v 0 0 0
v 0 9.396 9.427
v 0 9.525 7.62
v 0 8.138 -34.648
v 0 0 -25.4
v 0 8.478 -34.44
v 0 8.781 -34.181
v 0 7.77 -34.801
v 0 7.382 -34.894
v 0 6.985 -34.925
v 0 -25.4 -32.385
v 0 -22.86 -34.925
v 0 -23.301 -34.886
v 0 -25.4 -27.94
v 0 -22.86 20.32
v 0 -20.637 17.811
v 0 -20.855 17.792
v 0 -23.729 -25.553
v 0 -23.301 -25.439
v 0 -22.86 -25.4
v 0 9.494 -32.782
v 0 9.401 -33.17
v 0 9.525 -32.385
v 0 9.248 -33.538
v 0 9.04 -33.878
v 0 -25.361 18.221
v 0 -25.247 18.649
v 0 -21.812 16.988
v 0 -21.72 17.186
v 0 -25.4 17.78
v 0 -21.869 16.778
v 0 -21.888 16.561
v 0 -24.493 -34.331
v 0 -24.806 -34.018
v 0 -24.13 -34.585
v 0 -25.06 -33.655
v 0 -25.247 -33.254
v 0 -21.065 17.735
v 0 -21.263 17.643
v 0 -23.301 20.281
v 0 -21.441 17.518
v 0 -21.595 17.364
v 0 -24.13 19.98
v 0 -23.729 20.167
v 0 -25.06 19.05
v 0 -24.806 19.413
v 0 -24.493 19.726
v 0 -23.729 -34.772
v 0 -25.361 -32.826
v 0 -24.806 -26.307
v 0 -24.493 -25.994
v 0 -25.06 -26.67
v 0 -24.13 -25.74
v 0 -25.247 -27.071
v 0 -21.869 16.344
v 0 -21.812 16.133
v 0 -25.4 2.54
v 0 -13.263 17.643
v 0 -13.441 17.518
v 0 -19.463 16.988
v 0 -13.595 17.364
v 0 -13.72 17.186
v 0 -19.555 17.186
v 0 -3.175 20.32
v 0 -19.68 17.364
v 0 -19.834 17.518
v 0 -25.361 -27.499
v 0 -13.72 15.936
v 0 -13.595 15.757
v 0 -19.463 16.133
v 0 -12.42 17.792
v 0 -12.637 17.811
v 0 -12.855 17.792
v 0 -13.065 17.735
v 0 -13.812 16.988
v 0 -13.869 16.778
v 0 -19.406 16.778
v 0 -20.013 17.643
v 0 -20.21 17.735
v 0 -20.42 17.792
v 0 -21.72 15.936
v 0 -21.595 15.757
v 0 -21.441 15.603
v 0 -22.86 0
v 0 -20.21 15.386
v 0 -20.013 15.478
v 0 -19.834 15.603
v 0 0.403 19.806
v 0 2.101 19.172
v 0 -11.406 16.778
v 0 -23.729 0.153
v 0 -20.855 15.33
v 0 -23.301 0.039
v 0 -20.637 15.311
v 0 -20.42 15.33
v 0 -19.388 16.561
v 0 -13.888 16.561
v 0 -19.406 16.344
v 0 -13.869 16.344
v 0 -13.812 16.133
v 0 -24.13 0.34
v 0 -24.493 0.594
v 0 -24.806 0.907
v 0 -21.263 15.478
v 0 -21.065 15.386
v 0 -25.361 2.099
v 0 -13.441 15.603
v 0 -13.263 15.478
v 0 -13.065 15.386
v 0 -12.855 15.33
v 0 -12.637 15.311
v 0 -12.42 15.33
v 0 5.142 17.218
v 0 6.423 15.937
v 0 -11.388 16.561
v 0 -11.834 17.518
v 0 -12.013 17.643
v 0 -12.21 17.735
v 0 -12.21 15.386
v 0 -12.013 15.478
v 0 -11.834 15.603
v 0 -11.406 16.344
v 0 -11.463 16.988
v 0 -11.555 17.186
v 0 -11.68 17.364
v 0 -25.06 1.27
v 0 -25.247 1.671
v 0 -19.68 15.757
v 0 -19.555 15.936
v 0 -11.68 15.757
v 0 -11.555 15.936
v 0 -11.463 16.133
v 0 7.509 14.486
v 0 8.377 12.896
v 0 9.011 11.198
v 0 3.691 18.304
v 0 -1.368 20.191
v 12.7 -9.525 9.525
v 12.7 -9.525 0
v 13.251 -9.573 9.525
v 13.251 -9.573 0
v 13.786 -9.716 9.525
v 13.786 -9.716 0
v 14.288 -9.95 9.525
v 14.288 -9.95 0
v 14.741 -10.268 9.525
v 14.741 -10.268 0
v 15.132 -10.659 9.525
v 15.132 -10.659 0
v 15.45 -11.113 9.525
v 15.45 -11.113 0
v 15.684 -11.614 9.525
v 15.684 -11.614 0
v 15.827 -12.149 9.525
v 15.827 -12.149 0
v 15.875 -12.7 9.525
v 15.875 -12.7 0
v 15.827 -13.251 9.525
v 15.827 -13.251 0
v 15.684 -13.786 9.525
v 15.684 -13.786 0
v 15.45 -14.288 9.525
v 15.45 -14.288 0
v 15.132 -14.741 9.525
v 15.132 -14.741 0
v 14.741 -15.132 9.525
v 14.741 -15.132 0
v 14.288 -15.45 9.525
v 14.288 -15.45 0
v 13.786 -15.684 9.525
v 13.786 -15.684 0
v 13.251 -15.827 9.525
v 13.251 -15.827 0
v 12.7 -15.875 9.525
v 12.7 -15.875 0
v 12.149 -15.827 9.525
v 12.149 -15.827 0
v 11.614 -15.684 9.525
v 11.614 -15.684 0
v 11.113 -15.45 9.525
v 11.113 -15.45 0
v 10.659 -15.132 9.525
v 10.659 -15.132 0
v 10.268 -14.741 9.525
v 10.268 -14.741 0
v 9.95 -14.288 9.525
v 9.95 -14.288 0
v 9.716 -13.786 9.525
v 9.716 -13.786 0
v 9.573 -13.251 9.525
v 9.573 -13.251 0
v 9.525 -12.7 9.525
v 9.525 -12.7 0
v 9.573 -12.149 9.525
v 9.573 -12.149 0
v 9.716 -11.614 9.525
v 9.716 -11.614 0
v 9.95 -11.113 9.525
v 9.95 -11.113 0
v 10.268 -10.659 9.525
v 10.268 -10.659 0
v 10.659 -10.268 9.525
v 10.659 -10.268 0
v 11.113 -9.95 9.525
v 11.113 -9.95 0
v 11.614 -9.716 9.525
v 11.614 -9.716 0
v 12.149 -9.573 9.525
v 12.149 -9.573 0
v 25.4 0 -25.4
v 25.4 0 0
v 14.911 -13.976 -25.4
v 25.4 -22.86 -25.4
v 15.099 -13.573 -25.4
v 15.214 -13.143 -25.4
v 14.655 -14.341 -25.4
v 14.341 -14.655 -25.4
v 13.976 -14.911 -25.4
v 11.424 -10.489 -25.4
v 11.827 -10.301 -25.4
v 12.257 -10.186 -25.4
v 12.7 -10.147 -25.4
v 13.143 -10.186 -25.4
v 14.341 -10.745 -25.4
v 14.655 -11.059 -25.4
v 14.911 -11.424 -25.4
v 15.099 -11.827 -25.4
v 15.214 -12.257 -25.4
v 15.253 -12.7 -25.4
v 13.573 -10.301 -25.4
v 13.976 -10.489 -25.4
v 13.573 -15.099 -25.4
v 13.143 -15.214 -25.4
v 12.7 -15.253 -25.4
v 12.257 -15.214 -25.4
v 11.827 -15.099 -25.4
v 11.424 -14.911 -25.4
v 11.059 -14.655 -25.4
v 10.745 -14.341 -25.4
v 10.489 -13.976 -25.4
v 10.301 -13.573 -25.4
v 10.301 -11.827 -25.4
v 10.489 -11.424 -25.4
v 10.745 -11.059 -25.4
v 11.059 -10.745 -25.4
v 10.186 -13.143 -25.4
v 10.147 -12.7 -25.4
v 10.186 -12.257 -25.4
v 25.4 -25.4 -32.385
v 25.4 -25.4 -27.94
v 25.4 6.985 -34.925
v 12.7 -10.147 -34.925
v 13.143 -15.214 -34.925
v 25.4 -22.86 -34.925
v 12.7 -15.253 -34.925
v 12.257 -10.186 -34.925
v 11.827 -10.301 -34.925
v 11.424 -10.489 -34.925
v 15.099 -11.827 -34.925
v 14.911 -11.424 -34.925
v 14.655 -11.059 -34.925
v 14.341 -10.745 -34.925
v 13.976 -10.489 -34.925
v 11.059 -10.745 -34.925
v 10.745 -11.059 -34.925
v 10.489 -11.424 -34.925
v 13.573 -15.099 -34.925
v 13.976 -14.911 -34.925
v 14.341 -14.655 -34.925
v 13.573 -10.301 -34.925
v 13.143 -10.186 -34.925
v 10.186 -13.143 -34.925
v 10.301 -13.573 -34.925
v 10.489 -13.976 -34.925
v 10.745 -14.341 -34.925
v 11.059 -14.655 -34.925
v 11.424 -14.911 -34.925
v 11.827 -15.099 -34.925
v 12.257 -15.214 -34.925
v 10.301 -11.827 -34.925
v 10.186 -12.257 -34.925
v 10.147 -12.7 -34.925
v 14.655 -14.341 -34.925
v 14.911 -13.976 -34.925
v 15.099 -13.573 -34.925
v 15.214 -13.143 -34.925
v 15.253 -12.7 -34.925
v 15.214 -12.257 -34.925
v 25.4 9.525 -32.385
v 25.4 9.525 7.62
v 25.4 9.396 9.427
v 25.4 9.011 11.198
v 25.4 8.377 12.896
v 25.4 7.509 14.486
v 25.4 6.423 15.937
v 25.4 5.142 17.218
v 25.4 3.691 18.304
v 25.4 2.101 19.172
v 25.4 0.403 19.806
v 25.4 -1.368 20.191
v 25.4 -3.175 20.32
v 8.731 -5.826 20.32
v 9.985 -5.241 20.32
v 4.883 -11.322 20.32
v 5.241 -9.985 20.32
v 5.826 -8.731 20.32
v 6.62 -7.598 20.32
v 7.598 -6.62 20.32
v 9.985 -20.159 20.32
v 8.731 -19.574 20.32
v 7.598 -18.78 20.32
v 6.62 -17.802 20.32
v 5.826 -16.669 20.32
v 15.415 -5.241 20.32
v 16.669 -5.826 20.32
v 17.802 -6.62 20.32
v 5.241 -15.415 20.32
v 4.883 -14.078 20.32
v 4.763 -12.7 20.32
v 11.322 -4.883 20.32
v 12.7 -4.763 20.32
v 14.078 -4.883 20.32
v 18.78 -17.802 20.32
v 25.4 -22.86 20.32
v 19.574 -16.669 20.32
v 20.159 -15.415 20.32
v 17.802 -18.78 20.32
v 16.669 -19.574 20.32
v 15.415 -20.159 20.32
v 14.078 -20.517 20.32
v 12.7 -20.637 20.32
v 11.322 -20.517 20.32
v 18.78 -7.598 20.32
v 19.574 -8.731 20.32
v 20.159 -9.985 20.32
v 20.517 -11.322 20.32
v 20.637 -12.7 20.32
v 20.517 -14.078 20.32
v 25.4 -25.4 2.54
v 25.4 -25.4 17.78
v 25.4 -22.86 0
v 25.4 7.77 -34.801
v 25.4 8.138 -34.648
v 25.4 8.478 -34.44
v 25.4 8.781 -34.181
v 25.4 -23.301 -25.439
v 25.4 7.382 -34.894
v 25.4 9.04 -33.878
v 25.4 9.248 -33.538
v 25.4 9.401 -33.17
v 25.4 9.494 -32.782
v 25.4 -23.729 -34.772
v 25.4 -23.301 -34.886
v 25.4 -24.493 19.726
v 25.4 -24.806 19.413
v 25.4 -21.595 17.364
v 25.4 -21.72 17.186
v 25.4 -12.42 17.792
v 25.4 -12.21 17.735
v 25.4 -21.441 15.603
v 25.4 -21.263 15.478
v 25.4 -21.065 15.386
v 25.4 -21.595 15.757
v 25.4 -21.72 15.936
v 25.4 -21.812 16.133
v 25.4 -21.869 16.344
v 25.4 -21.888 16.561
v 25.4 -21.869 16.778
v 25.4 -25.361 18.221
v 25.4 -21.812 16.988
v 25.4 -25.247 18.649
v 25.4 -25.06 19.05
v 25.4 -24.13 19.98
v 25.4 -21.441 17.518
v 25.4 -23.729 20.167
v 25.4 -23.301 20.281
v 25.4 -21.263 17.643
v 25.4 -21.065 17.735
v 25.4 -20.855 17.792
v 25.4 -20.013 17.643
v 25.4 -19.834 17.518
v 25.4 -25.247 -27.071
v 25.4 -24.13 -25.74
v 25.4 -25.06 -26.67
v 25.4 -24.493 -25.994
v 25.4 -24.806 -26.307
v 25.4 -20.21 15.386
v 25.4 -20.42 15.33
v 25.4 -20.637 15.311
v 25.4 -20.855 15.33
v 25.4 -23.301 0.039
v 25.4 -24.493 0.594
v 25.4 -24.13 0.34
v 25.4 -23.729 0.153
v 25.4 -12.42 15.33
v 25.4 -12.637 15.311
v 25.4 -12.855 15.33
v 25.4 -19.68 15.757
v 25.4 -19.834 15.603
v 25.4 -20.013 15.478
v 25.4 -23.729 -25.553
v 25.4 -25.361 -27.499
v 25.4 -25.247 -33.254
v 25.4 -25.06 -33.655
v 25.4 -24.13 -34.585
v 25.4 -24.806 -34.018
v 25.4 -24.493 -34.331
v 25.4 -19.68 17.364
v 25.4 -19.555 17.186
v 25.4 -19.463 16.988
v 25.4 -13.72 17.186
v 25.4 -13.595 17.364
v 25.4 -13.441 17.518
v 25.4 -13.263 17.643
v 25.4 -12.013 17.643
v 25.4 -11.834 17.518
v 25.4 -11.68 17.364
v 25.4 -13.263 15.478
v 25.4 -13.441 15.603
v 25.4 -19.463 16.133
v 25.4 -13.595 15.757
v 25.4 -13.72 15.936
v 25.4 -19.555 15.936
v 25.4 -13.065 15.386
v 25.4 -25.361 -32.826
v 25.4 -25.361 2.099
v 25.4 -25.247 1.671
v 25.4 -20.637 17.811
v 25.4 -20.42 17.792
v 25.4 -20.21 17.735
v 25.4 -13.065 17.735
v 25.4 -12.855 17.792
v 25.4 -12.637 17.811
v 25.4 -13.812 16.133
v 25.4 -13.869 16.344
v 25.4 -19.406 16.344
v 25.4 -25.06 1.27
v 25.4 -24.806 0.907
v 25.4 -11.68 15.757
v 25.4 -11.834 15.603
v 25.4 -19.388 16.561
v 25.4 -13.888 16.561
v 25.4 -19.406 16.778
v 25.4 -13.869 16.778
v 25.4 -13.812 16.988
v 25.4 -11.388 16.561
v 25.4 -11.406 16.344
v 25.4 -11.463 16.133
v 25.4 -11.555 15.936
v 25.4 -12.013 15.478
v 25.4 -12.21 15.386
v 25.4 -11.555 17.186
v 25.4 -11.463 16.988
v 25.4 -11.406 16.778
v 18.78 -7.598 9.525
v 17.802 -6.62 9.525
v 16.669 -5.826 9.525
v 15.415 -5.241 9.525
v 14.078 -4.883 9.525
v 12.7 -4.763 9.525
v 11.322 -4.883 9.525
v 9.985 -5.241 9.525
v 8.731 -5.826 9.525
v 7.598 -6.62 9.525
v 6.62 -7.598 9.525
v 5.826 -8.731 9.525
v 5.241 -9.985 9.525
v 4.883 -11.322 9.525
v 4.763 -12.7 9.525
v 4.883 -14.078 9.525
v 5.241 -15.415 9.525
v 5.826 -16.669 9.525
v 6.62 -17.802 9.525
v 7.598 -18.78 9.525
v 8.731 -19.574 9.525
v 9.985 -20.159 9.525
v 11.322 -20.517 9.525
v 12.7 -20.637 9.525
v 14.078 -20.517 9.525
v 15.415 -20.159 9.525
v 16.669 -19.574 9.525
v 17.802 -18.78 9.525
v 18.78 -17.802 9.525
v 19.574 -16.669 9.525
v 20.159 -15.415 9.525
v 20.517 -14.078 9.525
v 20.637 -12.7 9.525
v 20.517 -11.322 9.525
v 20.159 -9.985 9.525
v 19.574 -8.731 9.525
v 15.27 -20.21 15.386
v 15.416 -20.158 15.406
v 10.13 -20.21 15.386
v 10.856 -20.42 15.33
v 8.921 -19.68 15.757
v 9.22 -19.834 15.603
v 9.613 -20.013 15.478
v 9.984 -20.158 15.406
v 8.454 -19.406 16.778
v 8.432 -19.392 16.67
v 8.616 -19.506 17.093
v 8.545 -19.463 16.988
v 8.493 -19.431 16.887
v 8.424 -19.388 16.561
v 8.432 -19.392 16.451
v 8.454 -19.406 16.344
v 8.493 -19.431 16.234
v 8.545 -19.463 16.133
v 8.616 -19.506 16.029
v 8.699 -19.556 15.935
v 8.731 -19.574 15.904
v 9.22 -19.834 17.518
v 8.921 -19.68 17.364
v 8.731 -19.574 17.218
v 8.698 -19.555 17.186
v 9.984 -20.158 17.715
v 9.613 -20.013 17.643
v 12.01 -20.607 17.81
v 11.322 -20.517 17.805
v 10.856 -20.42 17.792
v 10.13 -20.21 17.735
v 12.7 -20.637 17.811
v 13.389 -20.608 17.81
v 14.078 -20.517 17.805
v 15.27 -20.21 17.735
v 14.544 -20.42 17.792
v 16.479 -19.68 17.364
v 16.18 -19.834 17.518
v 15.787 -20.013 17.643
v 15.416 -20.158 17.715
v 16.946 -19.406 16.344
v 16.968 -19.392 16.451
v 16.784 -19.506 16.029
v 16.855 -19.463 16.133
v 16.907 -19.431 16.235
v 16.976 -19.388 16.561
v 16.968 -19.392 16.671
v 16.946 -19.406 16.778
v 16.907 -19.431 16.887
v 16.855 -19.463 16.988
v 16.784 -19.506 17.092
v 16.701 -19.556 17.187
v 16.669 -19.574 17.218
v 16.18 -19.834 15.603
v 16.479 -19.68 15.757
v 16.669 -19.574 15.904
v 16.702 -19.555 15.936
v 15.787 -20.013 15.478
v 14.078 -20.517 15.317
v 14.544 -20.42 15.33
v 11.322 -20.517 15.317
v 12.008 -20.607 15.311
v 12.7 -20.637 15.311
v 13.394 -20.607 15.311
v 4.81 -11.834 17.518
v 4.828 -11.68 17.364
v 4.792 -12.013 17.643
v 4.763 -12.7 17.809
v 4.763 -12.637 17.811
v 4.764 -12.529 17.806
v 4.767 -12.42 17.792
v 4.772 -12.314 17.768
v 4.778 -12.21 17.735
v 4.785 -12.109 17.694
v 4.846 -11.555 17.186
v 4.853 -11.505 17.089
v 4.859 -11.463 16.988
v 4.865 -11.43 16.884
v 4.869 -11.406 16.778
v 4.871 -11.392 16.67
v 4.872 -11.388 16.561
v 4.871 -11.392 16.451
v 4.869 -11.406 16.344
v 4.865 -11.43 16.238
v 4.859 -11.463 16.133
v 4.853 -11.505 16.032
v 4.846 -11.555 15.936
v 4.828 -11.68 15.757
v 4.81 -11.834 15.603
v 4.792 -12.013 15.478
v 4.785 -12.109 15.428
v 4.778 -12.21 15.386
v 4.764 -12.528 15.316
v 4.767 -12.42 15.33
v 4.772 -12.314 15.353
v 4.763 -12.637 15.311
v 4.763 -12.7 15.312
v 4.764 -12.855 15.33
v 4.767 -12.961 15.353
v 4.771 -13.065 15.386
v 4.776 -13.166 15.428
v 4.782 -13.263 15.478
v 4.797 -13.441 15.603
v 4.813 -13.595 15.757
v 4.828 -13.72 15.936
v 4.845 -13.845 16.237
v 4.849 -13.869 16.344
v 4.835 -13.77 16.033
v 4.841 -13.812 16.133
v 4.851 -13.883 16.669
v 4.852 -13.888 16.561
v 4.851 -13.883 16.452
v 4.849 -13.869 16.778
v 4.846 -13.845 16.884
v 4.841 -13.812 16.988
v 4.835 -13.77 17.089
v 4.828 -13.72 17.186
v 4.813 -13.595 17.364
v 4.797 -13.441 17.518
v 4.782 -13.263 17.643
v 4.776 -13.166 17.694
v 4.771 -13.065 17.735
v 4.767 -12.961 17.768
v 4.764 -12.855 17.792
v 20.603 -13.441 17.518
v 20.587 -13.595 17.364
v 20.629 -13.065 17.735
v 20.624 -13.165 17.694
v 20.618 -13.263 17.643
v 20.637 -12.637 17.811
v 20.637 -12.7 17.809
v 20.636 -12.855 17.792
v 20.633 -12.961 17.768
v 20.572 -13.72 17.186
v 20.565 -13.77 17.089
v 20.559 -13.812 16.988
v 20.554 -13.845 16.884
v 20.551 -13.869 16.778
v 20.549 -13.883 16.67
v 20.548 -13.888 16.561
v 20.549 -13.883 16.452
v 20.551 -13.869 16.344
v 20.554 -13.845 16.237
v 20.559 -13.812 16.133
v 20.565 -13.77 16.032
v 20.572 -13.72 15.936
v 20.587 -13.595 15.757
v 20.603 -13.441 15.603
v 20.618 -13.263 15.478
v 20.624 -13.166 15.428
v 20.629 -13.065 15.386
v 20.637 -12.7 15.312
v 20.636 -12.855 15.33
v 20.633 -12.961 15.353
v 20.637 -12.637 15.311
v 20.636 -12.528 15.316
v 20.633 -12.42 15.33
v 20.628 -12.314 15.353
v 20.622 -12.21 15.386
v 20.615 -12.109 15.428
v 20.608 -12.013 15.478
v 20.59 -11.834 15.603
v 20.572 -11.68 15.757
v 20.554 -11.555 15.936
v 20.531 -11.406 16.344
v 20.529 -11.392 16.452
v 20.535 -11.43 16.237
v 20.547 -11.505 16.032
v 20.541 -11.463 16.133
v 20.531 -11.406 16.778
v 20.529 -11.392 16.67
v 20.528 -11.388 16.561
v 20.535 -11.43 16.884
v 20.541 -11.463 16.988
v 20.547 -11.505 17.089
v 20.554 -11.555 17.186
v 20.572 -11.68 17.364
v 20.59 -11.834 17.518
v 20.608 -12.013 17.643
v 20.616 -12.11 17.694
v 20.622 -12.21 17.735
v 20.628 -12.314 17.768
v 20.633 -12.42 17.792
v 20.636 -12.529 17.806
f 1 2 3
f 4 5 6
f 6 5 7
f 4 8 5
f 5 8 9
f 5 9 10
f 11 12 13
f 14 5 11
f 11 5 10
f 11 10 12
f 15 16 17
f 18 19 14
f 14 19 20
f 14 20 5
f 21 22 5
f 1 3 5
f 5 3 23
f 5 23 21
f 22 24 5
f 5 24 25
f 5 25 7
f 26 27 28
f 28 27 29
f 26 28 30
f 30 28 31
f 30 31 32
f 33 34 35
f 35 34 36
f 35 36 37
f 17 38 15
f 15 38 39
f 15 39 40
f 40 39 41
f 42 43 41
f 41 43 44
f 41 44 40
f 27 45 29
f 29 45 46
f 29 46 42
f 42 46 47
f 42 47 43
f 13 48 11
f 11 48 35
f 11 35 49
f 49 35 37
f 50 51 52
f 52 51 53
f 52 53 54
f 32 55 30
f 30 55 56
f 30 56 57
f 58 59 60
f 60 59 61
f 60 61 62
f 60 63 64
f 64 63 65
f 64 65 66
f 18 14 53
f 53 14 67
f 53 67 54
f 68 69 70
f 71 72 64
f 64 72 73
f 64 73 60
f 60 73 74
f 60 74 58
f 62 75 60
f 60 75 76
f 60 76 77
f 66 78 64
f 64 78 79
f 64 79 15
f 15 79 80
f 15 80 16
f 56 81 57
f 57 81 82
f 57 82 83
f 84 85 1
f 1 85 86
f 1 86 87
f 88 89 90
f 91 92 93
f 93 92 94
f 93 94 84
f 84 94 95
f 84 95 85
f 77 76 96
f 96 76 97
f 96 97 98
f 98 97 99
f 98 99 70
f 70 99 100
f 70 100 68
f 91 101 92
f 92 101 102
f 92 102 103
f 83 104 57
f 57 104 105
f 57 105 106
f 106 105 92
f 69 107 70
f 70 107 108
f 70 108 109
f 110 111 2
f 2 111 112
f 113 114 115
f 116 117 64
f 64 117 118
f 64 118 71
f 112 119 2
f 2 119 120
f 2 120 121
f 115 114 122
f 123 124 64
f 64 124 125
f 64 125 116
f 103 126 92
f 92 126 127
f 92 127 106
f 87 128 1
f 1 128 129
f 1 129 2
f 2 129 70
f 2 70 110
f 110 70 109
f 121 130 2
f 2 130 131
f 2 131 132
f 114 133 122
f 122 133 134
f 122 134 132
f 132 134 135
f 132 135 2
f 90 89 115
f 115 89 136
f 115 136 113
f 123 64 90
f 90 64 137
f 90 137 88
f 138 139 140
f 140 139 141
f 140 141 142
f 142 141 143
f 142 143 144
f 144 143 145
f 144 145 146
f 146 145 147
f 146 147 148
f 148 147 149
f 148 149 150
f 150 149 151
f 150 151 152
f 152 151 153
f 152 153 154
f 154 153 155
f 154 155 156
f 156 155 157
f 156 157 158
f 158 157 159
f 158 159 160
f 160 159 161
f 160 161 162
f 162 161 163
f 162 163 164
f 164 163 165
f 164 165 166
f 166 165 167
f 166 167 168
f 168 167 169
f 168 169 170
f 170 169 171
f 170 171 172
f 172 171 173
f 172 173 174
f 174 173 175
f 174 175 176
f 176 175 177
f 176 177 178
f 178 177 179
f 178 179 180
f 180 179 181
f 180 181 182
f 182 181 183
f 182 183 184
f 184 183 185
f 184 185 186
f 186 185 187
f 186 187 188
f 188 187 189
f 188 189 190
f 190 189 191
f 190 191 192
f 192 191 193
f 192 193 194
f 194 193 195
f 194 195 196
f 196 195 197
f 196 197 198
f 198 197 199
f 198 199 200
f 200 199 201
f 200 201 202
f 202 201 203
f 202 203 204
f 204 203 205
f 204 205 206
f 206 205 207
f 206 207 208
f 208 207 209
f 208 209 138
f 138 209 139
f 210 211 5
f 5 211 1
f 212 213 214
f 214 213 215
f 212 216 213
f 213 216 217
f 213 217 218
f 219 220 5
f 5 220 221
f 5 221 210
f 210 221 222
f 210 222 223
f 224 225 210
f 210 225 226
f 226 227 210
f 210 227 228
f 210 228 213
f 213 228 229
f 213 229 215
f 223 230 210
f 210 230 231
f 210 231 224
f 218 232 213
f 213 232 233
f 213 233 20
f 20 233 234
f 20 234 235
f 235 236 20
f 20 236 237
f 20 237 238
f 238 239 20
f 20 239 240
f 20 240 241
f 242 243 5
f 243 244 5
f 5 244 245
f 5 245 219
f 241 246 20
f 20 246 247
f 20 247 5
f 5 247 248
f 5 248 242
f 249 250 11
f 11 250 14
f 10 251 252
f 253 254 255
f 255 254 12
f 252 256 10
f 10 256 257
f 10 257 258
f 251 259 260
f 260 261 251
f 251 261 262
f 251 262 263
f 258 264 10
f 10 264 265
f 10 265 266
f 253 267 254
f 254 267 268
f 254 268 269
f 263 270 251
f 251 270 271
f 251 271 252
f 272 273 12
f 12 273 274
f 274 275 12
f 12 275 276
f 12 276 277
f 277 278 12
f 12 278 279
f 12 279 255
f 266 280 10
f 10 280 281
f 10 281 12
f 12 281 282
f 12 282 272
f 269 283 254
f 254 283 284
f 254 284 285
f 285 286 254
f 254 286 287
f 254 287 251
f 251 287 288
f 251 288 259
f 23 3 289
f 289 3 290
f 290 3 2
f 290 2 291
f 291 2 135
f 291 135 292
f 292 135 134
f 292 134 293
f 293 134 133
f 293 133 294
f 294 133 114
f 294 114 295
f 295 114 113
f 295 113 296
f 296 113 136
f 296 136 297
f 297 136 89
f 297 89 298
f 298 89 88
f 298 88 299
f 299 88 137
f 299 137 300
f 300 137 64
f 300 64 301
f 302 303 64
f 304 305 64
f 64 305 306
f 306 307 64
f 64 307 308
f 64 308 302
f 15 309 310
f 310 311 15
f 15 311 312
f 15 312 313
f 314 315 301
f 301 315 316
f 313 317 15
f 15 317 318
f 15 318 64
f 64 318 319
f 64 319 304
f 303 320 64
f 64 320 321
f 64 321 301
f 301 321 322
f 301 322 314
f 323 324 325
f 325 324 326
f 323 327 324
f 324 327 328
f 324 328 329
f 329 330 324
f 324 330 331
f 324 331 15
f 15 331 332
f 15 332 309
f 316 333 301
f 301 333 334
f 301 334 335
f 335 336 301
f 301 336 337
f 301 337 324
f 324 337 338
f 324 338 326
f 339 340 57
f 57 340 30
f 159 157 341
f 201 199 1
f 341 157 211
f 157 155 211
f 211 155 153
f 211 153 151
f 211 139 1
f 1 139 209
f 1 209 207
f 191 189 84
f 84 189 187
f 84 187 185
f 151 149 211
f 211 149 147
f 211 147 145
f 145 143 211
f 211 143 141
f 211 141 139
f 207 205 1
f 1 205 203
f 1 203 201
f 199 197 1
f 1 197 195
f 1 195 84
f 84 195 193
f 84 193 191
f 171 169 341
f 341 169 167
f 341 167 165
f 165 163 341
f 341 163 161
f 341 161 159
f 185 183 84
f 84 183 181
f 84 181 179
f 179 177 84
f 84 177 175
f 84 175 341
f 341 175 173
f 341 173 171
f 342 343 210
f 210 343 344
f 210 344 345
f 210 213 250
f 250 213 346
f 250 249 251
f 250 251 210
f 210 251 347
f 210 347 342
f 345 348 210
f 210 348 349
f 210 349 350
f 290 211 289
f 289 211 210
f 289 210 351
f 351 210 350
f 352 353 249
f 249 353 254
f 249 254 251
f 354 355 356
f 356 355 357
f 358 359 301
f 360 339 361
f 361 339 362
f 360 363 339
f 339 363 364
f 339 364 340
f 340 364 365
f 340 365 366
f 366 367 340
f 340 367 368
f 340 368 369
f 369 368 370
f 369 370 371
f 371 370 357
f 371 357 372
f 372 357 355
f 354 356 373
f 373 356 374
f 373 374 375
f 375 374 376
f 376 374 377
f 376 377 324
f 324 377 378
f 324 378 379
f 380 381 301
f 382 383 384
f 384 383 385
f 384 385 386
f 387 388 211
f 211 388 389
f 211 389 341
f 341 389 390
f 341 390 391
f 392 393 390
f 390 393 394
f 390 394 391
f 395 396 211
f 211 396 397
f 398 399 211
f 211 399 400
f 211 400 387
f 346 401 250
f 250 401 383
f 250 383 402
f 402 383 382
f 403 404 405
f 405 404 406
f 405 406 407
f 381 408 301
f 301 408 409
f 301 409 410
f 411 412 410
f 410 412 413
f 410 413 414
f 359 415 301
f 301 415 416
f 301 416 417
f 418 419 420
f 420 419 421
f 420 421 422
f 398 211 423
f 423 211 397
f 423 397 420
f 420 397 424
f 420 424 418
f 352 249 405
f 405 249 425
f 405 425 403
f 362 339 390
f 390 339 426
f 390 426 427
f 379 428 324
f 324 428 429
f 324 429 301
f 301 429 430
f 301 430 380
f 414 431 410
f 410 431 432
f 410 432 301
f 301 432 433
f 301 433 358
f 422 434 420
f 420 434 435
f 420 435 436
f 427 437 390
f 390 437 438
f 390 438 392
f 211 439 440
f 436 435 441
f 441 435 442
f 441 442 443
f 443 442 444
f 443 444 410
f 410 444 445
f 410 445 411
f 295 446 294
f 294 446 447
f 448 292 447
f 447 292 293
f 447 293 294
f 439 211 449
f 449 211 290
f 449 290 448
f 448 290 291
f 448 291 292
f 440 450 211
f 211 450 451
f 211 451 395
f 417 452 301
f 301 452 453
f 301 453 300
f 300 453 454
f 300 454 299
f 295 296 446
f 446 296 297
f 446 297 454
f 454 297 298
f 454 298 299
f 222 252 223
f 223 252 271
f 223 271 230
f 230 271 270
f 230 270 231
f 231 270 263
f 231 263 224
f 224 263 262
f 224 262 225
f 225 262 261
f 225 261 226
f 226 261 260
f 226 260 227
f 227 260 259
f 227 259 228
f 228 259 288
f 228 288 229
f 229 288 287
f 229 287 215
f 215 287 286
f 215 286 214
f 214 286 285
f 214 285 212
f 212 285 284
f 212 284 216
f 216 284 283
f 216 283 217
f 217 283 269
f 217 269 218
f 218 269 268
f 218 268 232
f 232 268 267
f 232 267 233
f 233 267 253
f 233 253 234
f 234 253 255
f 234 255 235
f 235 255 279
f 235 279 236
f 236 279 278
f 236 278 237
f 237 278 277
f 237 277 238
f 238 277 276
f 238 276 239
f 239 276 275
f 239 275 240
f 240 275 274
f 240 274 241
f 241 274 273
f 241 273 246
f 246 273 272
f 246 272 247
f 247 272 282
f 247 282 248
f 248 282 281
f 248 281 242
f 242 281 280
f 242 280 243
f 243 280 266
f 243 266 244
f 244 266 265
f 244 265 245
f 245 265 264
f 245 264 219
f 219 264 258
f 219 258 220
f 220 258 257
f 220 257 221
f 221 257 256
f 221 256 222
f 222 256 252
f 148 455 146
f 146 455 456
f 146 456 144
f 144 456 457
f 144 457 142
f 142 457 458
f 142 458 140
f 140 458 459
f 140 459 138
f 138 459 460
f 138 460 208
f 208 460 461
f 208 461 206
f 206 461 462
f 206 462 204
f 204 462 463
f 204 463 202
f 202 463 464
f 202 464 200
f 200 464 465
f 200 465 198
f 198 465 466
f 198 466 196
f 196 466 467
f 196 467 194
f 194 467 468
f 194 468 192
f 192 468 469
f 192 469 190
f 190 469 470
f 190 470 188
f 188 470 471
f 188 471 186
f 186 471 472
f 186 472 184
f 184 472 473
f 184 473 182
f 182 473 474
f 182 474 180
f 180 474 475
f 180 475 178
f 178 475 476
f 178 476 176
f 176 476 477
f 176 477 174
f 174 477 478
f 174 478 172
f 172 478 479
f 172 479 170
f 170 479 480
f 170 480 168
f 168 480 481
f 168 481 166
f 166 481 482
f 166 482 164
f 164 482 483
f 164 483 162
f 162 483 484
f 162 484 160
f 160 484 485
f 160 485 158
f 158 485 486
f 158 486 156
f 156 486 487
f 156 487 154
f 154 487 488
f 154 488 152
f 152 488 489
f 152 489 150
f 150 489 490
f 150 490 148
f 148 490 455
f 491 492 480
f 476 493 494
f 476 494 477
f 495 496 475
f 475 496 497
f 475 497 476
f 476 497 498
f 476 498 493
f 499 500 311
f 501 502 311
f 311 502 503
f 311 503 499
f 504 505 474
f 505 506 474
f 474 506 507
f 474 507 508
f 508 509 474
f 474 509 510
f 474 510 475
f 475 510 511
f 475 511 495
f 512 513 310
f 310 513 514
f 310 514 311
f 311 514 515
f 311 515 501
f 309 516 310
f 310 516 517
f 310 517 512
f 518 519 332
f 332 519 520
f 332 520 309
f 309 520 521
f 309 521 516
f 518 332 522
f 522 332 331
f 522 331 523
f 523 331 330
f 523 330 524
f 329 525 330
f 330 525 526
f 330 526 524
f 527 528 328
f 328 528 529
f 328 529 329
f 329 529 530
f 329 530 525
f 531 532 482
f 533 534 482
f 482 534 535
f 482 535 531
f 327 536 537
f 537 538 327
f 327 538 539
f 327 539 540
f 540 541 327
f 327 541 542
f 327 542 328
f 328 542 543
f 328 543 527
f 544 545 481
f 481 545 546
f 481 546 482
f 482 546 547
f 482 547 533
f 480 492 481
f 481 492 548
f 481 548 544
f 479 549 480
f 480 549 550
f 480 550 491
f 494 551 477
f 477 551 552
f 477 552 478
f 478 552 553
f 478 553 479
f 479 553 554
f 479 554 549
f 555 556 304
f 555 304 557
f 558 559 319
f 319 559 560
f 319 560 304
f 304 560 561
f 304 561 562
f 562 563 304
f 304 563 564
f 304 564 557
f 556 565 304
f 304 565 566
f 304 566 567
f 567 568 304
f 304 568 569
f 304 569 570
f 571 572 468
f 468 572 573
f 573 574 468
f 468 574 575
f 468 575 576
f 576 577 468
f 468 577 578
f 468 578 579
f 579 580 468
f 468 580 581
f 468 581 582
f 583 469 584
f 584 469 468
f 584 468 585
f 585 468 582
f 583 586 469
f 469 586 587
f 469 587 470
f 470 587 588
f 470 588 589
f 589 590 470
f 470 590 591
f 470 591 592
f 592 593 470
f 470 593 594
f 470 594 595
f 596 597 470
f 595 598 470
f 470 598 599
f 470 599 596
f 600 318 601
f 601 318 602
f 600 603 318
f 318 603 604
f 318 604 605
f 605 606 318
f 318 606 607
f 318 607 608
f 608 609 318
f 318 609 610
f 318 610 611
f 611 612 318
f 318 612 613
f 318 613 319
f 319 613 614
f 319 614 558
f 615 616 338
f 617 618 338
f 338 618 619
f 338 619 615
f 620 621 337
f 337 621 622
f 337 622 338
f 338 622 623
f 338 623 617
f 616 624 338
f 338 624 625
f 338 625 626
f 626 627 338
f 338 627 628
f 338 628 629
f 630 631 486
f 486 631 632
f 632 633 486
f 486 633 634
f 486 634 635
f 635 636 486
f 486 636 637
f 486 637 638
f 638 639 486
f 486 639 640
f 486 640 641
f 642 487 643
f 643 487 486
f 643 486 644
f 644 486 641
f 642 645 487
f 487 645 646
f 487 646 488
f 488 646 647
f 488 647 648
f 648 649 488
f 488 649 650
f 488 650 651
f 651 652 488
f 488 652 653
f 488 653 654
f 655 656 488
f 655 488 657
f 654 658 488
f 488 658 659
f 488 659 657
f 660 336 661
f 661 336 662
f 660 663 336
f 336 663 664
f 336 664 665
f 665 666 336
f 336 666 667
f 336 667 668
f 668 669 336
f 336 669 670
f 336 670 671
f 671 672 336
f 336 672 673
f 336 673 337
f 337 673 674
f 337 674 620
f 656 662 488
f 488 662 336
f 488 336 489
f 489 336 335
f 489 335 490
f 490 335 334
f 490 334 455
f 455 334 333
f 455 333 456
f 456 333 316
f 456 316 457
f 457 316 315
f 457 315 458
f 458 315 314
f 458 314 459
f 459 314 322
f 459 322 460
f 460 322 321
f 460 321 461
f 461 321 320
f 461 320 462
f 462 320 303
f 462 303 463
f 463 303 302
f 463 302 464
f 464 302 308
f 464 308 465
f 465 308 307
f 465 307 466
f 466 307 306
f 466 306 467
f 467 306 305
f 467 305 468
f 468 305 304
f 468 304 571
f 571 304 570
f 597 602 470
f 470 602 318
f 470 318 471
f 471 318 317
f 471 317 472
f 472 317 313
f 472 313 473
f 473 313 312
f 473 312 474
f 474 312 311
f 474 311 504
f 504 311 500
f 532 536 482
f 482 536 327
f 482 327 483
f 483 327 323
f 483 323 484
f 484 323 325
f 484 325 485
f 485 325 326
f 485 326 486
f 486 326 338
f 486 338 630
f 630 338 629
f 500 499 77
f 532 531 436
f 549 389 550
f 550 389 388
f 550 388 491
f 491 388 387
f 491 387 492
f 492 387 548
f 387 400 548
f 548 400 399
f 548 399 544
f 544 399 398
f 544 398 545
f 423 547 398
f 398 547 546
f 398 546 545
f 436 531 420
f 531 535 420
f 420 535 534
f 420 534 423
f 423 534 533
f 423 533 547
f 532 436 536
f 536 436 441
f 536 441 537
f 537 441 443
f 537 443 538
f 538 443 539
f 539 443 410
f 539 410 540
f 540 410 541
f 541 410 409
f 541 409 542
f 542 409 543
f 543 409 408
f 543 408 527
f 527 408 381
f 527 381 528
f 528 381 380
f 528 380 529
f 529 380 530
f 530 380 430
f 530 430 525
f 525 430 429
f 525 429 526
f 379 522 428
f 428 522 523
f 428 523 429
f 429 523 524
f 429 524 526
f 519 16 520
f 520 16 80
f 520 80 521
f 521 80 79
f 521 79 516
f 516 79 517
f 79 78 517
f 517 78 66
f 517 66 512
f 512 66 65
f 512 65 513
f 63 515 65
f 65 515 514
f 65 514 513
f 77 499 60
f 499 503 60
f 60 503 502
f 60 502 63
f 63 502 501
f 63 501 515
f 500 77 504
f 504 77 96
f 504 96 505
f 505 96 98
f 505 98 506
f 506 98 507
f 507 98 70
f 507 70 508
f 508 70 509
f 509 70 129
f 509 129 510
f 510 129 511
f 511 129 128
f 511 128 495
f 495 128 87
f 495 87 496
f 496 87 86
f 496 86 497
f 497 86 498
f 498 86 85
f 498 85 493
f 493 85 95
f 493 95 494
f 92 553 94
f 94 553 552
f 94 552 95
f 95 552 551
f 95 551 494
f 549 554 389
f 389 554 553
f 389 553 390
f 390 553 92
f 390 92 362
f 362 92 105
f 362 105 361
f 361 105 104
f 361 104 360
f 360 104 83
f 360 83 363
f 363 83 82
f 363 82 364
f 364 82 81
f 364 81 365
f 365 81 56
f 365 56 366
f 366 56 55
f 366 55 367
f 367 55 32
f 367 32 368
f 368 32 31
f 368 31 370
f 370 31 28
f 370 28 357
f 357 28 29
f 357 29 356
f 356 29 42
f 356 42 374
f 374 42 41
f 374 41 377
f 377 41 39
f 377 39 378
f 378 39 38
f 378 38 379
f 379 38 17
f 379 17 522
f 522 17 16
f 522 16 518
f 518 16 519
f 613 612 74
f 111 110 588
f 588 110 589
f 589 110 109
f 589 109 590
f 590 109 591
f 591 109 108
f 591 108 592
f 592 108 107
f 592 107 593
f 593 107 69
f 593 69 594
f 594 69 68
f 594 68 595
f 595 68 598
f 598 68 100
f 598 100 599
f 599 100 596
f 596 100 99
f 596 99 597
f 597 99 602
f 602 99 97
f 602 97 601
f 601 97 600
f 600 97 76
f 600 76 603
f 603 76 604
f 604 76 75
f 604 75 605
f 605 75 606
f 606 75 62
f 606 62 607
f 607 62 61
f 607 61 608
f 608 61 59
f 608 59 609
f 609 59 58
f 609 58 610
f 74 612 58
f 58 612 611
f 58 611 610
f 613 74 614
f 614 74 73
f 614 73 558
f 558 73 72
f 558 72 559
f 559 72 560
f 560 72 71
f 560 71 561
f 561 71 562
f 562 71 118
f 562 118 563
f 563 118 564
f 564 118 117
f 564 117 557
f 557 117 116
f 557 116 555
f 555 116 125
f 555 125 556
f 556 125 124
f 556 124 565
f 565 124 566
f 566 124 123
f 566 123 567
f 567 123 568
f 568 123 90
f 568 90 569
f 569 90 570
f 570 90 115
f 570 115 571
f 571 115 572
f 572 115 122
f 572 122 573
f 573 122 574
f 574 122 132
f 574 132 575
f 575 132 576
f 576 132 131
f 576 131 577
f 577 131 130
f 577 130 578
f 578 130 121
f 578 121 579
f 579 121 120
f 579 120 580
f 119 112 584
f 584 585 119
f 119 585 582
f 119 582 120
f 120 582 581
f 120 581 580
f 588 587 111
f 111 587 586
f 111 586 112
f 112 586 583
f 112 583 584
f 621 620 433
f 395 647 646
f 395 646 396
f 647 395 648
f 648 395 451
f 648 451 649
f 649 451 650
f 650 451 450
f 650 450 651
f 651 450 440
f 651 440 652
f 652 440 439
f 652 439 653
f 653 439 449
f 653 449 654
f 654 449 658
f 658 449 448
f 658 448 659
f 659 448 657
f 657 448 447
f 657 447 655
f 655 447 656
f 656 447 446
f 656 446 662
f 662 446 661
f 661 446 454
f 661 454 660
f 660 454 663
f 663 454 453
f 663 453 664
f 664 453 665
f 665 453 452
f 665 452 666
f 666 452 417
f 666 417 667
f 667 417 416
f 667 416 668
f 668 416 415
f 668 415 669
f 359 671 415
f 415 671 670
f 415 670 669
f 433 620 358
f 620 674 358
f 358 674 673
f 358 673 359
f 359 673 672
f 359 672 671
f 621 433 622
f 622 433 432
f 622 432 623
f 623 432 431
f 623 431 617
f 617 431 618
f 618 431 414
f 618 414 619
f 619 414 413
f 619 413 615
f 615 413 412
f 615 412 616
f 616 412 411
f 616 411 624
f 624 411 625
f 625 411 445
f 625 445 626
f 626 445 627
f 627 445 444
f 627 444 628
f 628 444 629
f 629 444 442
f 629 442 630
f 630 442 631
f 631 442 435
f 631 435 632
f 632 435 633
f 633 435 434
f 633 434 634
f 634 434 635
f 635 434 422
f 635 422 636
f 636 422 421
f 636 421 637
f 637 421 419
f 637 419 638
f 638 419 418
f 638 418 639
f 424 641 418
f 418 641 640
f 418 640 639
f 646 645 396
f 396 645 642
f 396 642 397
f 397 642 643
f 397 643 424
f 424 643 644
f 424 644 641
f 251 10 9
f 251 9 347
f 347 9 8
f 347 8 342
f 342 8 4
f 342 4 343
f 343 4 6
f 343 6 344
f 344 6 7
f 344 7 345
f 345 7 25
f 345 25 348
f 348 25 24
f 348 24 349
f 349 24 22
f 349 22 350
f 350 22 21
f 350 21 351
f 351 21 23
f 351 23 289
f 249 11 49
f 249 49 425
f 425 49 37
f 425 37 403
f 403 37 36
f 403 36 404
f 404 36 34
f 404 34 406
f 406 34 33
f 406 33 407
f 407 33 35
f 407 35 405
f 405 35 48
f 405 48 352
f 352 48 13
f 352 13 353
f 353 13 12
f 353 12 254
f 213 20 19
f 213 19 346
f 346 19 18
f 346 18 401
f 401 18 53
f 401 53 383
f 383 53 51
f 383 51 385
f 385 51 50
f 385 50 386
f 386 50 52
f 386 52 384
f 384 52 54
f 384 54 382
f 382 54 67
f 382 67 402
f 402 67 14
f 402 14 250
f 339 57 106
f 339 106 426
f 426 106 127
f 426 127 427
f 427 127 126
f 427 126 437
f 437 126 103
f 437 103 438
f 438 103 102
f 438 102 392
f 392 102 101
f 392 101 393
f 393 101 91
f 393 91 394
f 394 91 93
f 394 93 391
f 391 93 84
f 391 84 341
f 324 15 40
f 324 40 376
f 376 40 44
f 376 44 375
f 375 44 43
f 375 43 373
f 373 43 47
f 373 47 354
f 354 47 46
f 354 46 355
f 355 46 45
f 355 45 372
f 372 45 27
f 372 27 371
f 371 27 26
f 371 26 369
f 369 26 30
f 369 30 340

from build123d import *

# Parameters (mm, degrees)
BOSS_EXTRUDE1_DEPTH            = 25.4
F_1_4_0_2500_DOWEL_HOLE1_D     = 6.35
F_1_4_0_2500_DOWEL_HOLE1_DEPTH = 20.32
F_10_CLEARANCE_HOLE1_D         = 5.1054
SKETCH8_R                      = 7.9375
CUT_EXTRUDE1_DEPTH             = 10.795
M3X0_5_TAPPED_HOLE1_D          = 2.5
FILLET1_R                      = 2.54


with BuildPart() as part:
    # Sketch1 → Boss-Extrude1 (new body)
    with BuildSketch(Plane(origin=(0, 0, 0), x_dir=(0, 0, -1), z_dir=(1, 0, 0))):
        with BuildLine():
            Line((0, 0), (0, -25.4))
            Line((0, -25.4), (-20.32, -25.4))
            Line((-20.32, -25.4), (-20.32, -3.175))
            ThreePointArc((-20.32, -3.175), (-16.600256121, 5.805256121), (-7.62, 9.525))
            Line((-7.62, 9.525), (34.925, 9.525))
            Line((34.925, 9.525), (34.925, -25.4))
            Line((34.925, -25.4), (25.4, -25.4))
            Line((25.4, -25.4), (25.4, 0))
            Line((25.4, 0), (0, 0))
        make_face()
    extrude(amount=BOSS_EXTRUDE1_DEPTH)

    # 1/4 (0.2500) Dowel Hole1
    with Locations(Plane(origin=(0, 0, 0), x_dir=(-1, 0, 0), z_dir=(0, 0, -1))):
        with Locations((-12.7, -12.7)):
            Hole(F_1_4_0_2500_DOWEL_HOLE1_D / 2, depth=F_1_4_0_2500_DOWEL_HOLE1_DEPTH)

    # #10 Clearance Hole1 (through all)
    with Locations(Plane(origin=(0, 0, -34.925), x_dir=(-1, 0, 0), z_dir=(0, 0, -1))):
        with Locations((-12.7, -12.7)):
            Hole(F_10_CLEARANCE_HOLE1_D / 2)

    # Sketch8 → Cut-Extrude1 (cut)
    with BuildSketch(Plane.XY.offset(20.32)):
        with Locations((12.7, -12.7)):
            Circle(SKETCH8_R)
    extrude(amount=-CUT_EXTRUDE1_DEPTH, mode=Mode.SUBTRACT)

    # M3x0.5 Tapped Hole1 (through all)
    with Locations(Plane(origin=(25.4, 0, 0), x_dir=(0, 0, -1), z_dir=(1, 0, 0))):
        with Locations((-16.5608, -12.6375), (-16.5608, -20.6375)):
            Hole(M3X0_5_TAPPED_HOLE1_D / 2)

    # Fillet1
    fillet1_edges = [part.edges().sort_by_distance(p)[0] for p in [
        (12.7, -25.4, 0),
        (12.7, -25.4, 20.32),
        (12.7, 9.525, -34.925),
        (12.7, -25.4, -34.925),
        (12.7, -25.4, -25.4),
    ]]
    fillet(fillet1_edges, radius=FILLET1_R)


solid = part.part
